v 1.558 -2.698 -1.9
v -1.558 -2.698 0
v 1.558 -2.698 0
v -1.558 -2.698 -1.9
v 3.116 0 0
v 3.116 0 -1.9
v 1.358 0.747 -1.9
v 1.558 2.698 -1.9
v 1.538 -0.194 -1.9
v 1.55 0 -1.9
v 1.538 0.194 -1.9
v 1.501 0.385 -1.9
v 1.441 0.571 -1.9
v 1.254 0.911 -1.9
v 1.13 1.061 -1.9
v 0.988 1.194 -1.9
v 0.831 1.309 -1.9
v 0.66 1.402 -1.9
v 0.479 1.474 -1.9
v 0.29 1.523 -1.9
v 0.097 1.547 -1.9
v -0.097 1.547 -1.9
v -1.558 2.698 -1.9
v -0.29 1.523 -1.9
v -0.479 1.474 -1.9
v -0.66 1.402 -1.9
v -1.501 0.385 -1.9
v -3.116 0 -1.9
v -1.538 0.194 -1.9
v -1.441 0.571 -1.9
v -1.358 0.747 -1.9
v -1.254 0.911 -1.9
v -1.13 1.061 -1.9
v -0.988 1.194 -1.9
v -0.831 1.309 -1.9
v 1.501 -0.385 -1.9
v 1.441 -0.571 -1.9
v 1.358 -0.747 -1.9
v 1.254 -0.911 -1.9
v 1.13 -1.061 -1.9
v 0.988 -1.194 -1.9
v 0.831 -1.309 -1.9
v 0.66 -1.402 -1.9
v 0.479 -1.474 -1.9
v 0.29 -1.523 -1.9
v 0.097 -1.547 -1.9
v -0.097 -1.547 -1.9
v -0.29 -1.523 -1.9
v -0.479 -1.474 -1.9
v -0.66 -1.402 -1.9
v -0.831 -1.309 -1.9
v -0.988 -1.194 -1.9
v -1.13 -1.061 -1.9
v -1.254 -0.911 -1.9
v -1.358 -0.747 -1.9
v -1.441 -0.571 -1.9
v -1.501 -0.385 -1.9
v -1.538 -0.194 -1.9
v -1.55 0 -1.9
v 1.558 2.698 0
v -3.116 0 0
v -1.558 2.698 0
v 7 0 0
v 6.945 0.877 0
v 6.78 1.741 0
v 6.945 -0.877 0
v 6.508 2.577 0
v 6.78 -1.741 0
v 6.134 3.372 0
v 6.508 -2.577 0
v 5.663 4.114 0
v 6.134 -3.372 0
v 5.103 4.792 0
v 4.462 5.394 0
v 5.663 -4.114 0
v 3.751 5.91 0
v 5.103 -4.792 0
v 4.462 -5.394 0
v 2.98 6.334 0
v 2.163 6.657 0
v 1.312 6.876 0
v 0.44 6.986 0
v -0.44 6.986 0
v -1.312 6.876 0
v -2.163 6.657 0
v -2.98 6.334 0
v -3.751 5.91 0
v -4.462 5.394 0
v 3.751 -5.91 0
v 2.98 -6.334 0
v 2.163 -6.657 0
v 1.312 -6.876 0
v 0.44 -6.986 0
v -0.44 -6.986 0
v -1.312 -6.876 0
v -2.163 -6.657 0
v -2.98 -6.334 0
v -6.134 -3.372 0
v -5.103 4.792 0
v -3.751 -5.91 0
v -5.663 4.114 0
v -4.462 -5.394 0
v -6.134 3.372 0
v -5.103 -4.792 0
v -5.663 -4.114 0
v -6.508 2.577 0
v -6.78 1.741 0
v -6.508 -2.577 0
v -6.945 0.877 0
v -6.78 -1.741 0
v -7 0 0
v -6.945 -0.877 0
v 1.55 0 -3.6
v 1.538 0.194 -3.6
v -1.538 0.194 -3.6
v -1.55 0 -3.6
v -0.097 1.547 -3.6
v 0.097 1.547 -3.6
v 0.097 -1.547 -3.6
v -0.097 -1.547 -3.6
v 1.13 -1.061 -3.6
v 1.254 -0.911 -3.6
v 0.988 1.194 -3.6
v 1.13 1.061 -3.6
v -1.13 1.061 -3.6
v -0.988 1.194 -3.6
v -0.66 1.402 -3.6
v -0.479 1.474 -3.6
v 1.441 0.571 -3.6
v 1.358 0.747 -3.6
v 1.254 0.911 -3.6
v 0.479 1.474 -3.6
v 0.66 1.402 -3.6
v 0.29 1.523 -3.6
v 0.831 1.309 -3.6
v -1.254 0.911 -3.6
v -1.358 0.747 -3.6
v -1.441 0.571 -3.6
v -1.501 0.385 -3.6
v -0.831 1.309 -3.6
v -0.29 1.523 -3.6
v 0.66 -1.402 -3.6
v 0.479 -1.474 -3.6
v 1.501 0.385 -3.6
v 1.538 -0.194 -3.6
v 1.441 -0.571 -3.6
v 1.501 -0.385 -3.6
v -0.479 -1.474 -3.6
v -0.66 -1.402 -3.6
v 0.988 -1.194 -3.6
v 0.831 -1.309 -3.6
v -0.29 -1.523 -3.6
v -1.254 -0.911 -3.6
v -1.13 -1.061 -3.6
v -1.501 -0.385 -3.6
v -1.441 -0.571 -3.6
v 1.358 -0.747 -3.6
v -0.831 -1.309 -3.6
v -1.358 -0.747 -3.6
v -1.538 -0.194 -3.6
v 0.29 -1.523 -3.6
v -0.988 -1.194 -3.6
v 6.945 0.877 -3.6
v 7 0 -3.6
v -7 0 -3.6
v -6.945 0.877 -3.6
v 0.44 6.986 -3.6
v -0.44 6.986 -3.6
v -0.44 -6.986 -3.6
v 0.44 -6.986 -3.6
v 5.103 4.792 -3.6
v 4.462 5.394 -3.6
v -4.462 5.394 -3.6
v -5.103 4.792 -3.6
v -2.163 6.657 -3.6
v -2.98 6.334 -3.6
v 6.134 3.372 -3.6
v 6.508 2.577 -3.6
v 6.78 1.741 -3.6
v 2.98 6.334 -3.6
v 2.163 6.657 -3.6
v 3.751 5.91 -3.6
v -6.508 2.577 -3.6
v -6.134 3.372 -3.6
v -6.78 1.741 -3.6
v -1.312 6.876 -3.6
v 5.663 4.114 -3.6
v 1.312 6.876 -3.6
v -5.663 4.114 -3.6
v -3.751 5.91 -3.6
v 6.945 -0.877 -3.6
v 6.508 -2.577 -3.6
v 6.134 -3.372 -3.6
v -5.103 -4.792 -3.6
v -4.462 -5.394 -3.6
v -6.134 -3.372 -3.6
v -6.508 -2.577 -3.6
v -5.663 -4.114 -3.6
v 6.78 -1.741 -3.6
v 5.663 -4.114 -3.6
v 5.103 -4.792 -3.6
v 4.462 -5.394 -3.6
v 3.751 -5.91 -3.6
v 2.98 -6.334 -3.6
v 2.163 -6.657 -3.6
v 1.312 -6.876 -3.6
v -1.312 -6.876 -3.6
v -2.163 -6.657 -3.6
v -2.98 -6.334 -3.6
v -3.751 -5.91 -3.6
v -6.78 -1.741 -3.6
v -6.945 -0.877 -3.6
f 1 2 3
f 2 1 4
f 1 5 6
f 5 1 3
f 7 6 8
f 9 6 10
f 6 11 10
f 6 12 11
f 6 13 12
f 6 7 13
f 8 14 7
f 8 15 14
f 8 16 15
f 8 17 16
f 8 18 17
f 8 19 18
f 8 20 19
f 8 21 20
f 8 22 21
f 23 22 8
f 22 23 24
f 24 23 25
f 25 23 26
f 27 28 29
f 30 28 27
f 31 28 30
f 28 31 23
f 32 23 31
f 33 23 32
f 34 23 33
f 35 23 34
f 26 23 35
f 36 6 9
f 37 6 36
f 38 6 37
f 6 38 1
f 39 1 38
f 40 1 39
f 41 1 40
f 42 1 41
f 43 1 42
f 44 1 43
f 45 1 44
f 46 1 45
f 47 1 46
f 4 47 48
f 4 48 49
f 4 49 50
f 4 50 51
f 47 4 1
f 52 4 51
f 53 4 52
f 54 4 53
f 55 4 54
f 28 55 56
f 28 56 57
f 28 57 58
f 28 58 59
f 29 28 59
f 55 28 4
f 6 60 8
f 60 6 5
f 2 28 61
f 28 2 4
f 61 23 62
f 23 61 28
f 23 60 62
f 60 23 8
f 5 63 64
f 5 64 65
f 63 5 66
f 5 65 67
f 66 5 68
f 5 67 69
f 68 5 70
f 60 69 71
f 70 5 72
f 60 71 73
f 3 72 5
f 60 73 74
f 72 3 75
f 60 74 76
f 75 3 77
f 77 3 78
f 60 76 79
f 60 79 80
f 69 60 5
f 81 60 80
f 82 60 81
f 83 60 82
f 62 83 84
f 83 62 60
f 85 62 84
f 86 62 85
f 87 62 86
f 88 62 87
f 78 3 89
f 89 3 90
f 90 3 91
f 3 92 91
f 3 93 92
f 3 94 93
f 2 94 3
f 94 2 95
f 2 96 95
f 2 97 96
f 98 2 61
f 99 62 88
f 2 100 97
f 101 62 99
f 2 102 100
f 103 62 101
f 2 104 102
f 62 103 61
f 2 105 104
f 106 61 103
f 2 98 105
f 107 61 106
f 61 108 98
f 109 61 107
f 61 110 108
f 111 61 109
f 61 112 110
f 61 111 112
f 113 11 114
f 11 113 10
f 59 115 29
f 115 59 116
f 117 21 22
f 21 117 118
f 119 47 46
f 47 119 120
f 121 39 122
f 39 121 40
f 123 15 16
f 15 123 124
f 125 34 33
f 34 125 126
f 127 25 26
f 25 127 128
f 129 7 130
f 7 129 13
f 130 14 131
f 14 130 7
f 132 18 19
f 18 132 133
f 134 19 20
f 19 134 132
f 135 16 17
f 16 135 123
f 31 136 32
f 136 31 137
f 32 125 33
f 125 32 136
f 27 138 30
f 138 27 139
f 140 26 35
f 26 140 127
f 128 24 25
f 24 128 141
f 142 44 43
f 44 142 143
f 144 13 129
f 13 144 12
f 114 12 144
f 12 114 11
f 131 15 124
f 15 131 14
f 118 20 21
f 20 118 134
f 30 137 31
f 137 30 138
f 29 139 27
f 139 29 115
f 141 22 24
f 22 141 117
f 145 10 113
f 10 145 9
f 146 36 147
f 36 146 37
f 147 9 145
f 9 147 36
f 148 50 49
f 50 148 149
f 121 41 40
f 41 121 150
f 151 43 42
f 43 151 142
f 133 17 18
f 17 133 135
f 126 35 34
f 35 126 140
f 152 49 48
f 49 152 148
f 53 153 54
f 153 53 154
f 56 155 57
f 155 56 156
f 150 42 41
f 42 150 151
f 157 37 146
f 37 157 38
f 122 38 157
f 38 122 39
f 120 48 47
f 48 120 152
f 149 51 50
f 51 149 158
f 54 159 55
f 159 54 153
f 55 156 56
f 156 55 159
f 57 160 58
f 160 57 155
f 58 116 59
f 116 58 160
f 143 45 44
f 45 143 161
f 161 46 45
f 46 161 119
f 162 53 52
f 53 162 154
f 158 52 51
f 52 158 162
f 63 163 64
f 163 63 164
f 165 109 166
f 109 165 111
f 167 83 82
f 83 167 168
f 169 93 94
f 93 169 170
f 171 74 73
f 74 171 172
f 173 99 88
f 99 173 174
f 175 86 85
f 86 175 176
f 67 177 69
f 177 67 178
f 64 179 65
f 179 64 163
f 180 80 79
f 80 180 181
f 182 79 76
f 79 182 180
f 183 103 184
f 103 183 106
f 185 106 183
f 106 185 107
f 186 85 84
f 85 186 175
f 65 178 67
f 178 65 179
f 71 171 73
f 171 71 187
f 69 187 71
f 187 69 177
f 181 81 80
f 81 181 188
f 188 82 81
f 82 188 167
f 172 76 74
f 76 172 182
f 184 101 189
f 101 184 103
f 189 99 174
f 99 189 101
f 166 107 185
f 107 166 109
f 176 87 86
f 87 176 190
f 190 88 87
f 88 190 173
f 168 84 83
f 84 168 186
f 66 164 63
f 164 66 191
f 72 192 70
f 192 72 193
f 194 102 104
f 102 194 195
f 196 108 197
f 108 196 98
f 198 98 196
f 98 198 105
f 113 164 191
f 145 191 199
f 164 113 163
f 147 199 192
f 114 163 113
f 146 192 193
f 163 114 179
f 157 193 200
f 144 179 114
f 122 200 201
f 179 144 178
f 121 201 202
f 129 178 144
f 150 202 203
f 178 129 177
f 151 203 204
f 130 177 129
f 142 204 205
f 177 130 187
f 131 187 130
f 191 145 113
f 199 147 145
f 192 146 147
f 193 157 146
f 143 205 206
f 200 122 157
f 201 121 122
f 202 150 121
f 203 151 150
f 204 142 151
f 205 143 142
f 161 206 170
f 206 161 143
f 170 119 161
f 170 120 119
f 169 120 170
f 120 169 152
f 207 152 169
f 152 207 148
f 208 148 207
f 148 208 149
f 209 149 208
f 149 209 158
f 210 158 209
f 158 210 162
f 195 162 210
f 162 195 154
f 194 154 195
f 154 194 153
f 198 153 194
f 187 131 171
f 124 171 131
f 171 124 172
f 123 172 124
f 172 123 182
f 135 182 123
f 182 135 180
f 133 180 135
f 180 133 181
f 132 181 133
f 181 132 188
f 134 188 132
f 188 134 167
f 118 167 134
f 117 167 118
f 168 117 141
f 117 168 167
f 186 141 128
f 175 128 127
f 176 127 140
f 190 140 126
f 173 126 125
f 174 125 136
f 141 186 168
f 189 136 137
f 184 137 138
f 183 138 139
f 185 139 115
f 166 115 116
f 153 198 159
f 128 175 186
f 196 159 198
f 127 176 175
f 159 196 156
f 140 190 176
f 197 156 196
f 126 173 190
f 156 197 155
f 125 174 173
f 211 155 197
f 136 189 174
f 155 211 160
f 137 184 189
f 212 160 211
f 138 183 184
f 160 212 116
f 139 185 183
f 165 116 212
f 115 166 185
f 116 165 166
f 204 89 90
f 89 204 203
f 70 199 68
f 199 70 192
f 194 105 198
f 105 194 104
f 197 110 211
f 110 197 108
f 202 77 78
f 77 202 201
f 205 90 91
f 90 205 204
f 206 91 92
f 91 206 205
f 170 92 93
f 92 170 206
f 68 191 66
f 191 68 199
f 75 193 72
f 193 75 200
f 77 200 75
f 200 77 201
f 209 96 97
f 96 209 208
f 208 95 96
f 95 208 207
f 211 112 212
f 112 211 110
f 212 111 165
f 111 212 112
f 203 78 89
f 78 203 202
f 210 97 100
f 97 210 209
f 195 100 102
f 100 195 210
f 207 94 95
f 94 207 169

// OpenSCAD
$fn = 50;

difference() {
	union() {
		translate(v = [0, 0, -3.6]) {
			cylinder(h = 3.6, r = 7.0);
		}
	}
	union() {
		translate(v = [0, 0, 0]) {
			rotate(a = [0, 0, 0]) {
				difference() {
					union() {
						translate(v = [0, 0, -1.9]) {
							linear_extrude(height = 1.9) {
								polygon(points = [[3.1158, 0.0], [1.5579000000000005, 2.698361953111554], [-1.5578999999999994, 2.6983619531115544], [-3.1158, 3.815754496783323e-16], [-1.5579000000000014, -2.6983619531115535], [1.557899999999998, -2.6983619531115552]]);
							}
						}
					}
					union();
				}
			}
		}
		#translate(v = [0, 0, -100.0]) {
			cylinder(h = 200, r = 1.55);
		}
	}
}
